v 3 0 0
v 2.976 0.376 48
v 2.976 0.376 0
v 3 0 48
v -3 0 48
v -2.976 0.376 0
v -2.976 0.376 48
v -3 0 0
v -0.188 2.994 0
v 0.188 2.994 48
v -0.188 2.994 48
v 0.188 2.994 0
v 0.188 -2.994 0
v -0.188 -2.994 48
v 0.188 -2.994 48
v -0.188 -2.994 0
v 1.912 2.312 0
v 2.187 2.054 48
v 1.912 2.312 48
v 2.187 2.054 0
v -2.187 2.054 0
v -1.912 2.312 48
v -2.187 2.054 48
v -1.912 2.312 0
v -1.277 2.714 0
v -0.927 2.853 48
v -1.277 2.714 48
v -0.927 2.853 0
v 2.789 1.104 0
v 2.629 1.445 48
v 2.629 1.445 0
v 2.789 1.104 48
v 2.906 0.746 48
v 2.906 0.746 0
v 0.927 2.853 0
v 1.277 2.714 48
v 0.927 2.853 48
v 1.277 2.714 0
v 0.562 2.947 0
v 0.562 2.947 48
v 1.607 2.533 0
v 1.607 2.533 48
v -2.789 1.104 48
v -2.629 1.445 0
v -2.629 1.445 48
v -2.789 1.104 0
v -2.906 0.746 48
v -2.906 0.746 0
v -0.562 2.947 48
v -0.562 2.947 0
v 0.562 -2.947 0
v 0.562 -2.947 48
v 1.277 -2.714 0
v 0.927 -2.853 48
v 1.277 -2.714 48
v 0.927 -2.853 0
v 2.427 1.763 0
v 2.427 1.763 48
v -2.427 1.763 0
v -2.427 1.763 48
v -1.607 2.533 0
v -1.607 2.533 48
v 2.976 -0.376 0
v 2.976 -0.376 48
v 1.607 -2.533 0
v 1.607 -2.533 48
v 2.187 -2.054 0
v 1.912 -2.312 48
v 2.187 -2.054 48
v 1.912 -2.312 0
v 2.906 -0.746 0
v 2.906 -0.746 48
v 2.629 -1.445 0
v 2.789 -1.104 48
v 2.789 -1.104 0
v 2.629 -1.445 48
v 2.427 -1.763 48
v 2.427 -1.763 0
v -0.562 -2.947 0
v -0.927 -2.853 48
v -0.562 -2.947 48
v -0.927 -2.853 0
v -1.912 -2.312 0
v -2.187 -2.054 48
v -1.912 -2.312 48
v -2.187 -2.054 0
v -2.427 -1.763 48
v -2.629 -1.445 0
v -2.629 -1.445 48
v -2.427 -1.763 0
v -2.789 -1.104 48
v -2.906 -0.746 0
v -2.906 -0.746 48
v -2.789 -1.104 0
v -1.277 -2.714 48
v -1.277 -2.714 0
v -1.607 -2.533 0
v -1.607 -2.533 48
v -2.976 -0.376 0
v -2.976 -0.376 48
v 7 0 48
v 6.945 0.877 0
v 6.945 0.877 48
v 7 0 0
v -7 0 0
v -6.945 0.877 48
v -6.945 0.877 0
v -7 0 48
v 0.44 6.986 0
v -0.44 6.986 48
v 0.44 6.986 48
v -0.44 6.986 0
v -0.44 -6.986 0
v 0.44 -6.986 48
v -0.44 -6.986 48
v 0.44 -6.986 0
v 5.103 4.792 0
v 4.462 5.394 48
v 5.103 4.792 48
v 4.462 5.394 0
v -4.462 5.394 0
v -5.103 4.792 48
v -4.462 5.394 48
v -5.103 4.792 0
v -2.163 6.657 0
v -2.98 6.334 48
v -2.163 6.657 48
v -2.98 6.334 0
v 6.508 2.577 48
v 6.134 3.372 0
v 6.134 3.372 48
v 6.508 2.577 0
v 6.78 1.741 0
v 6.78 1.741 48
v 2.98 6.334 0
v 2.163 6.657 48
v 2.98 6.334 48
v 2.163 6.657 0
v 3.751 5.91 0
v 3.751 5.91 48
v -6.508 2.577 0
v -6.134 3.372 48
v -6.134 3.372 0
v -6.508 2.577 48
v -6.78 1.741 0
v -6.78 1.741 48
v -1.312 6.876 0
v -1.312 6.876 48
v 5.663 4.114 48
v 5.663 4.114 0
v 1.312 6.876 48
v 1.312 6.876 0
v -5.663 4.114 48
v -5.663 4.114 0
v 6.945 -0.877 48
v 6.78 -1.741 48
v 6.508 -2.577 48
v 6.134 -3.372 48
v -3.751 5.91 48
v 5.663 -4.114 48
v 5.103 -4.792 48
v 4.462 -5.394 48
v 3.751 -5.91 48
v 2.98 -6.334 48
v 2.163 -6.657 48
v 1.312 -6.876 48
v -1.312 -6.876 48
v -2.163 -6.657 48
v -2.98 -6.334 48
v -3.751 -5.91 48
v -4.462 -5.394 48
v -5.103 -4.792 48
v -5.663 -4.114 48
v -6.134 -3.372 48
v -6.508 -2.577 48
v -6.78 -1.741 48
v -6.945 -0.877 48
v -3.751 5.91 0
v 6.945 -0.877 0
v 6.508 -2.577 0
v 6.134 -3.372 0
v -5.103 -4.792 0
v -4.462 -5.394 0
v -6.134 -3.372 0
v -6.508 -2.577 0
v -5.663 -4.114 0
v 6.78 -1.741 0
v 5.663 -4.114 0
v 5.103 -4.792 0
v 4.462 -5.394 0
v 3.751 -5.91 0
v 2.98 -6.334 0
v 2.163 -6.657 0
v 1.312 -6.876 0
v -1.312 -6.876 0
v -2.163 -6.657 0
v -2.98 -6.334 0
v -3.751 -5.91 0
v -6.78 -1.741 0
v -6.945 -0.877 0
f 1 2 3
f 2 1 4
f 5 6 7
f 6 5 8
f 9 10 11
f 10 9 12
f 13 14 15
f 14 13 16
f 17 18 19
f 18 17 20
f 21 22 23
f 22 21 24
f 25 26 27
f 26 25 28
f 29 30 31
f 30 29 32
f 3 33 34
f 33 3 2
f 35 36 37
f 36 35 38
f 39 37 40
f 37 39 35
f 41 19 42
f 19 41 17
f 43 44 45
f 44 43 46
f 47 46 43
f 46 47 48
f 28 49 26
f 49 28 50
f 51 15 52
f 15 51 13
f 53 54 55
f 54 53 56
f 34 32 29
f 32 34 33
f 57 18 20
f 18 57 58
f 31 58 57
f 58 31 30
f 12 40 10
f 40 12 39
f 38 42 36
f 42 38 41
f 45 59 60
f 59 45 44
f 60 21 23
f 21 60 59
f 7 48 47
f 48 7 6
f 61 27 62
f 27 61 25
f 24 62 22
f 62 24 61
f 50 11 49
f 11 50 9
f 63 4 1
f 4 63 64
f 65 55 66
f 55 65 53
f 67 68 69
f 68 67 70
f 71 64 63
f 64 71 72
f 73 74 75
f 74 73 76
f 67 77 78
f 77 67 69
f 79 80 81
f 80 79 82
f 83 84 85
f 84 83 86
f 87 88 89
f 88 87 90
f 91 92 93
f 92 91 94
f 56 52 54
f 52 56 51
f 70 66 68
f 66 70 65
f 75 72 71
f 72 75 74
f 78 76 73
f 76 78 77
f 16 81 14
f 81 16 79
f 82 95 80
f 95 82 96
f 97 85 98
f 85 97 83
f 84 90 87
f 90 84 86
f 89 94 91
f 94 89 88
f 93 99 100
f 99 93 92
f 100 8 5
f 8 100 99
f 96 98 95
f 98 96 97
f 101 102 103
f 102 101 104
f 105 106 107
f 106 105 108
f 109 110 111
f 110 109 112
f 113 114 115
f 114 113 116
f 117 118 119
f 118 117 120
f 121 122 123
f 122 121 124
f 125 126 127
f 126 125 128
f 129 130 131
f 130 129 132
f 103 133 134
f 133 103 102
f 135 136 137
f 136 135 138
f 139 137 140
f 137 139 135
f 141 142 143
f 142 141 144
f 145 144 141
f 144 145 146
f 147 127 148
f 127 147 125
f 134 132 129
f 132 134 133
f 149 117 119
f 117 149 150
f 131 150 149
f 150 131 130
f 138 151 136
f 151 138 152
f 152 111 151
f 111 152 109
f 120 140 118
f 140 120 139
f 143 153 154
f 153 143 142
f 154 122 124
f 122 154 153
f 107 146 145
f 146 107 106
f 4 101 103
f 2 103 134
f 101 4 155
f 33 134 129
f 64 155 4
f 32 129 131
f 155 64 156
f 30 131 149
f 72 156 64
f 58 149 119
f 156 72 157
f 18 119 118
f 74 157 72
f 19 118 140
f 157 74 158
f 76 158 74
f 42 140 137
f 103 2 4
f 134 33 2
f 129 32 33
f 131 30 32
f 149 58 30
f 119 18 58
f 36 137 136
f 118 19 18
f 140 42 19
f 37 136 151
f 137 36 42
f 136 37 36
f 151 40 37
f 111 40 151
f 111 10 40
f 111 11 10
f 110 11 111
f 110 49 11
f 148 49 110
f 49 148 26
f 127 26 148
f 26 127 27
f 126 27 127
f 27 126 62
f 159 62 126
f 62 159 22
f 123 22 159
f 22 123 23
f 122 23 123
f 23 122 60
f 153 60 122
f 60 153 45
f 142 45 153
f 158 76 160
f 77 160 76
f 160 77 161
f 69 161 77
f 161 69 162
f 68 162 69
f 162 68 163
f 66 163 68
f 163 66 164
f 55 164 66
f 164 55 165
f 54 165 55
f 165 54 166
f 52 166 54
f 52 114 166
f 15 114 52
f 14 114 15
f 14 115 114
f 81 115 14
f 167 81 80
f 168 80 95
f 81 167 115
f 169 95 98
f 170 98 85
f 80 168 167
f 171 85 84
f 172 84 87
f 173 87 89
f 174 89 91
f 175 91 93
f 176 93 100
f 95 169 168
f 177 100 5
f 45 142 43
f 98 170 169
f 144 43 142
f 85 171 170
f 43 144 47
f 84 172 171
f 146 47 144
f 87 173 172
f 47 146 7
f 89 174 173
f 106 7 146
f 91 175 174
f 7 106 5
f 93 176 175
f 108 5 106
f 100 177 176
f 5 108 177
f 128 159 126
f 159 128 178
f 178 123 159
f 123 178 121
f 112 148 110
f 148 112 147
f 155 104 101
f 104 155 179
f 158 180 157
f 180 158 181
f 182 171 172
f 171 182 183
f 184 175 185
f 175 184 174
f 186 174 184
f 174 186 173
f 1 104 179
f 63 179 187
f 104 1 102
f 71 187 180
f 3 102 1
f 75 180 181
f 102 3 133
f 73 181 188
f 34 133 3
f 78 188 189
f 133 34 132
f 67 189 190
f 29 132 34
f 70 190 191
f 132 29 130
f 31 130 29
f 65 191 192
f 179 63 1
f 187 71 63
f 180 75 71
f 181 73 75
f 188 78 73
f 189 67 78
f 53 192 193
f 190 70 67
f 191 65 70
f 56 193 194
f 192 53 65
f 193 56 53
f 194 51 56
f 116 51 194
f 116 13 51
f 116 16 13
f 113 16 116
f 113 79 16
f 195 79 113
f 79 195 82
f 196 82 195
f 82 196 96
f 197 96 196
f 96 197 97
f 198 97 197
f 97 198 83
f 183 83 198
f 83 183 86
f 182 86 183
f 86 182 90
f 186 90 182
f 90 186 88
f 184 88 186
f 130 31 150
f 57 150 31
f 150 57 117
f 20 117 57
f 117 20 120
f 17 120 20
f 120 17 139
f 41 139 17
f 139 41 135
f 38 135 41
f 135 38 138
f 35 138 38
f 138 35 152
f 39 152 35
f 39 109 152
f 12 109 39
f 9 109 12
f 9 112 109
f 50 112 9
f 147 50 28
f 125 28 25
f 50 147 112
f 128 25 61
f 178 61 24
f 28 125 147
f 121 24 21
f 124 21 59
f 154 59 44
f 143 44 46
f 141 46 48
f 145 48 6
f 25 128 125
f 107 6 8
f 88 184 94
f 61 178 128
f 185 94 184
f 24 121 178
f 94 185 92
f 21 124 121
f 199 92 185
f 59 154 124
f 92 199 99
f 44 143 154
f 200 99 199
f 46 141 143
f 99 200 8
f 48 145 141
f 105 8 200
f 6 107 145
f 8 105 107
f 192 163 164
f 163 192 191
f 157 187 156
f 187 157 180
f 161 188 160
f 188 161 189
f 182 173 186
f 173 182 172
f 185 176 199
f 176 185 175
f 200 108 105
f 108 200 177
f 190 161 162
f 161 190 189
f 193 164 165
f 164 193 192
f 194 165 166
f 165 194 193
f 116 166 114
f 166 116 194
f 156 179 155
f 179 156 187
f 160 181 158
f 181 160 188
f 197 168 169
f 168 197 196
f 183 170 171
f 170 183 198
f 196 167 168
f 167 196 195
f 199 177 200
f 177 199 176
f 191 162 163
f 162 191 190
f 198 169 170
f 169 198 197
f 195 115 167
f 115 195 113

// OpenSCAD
$fn = 50;


difference() {
	union() {
		cylinder(h = 48, r = 7.0000000000);
	}
	union() {
		cylinder(h = 48, r = 3.0000000000);
		cylinder(h = 48, r = 3.0000000000);
		cylinder(h = 48, r = 1.5000000000);
		cylinder(h = 48, r = 1.5000000000);
		cylinder(h = 48, r = 1.5000000000);
		cylinder(h = 48, r = 1.5000000000);
		cylinder(h = 48, r = 1.5000000000);
		cylinder(h = 48, r = 1.5000000000);
	}
}
